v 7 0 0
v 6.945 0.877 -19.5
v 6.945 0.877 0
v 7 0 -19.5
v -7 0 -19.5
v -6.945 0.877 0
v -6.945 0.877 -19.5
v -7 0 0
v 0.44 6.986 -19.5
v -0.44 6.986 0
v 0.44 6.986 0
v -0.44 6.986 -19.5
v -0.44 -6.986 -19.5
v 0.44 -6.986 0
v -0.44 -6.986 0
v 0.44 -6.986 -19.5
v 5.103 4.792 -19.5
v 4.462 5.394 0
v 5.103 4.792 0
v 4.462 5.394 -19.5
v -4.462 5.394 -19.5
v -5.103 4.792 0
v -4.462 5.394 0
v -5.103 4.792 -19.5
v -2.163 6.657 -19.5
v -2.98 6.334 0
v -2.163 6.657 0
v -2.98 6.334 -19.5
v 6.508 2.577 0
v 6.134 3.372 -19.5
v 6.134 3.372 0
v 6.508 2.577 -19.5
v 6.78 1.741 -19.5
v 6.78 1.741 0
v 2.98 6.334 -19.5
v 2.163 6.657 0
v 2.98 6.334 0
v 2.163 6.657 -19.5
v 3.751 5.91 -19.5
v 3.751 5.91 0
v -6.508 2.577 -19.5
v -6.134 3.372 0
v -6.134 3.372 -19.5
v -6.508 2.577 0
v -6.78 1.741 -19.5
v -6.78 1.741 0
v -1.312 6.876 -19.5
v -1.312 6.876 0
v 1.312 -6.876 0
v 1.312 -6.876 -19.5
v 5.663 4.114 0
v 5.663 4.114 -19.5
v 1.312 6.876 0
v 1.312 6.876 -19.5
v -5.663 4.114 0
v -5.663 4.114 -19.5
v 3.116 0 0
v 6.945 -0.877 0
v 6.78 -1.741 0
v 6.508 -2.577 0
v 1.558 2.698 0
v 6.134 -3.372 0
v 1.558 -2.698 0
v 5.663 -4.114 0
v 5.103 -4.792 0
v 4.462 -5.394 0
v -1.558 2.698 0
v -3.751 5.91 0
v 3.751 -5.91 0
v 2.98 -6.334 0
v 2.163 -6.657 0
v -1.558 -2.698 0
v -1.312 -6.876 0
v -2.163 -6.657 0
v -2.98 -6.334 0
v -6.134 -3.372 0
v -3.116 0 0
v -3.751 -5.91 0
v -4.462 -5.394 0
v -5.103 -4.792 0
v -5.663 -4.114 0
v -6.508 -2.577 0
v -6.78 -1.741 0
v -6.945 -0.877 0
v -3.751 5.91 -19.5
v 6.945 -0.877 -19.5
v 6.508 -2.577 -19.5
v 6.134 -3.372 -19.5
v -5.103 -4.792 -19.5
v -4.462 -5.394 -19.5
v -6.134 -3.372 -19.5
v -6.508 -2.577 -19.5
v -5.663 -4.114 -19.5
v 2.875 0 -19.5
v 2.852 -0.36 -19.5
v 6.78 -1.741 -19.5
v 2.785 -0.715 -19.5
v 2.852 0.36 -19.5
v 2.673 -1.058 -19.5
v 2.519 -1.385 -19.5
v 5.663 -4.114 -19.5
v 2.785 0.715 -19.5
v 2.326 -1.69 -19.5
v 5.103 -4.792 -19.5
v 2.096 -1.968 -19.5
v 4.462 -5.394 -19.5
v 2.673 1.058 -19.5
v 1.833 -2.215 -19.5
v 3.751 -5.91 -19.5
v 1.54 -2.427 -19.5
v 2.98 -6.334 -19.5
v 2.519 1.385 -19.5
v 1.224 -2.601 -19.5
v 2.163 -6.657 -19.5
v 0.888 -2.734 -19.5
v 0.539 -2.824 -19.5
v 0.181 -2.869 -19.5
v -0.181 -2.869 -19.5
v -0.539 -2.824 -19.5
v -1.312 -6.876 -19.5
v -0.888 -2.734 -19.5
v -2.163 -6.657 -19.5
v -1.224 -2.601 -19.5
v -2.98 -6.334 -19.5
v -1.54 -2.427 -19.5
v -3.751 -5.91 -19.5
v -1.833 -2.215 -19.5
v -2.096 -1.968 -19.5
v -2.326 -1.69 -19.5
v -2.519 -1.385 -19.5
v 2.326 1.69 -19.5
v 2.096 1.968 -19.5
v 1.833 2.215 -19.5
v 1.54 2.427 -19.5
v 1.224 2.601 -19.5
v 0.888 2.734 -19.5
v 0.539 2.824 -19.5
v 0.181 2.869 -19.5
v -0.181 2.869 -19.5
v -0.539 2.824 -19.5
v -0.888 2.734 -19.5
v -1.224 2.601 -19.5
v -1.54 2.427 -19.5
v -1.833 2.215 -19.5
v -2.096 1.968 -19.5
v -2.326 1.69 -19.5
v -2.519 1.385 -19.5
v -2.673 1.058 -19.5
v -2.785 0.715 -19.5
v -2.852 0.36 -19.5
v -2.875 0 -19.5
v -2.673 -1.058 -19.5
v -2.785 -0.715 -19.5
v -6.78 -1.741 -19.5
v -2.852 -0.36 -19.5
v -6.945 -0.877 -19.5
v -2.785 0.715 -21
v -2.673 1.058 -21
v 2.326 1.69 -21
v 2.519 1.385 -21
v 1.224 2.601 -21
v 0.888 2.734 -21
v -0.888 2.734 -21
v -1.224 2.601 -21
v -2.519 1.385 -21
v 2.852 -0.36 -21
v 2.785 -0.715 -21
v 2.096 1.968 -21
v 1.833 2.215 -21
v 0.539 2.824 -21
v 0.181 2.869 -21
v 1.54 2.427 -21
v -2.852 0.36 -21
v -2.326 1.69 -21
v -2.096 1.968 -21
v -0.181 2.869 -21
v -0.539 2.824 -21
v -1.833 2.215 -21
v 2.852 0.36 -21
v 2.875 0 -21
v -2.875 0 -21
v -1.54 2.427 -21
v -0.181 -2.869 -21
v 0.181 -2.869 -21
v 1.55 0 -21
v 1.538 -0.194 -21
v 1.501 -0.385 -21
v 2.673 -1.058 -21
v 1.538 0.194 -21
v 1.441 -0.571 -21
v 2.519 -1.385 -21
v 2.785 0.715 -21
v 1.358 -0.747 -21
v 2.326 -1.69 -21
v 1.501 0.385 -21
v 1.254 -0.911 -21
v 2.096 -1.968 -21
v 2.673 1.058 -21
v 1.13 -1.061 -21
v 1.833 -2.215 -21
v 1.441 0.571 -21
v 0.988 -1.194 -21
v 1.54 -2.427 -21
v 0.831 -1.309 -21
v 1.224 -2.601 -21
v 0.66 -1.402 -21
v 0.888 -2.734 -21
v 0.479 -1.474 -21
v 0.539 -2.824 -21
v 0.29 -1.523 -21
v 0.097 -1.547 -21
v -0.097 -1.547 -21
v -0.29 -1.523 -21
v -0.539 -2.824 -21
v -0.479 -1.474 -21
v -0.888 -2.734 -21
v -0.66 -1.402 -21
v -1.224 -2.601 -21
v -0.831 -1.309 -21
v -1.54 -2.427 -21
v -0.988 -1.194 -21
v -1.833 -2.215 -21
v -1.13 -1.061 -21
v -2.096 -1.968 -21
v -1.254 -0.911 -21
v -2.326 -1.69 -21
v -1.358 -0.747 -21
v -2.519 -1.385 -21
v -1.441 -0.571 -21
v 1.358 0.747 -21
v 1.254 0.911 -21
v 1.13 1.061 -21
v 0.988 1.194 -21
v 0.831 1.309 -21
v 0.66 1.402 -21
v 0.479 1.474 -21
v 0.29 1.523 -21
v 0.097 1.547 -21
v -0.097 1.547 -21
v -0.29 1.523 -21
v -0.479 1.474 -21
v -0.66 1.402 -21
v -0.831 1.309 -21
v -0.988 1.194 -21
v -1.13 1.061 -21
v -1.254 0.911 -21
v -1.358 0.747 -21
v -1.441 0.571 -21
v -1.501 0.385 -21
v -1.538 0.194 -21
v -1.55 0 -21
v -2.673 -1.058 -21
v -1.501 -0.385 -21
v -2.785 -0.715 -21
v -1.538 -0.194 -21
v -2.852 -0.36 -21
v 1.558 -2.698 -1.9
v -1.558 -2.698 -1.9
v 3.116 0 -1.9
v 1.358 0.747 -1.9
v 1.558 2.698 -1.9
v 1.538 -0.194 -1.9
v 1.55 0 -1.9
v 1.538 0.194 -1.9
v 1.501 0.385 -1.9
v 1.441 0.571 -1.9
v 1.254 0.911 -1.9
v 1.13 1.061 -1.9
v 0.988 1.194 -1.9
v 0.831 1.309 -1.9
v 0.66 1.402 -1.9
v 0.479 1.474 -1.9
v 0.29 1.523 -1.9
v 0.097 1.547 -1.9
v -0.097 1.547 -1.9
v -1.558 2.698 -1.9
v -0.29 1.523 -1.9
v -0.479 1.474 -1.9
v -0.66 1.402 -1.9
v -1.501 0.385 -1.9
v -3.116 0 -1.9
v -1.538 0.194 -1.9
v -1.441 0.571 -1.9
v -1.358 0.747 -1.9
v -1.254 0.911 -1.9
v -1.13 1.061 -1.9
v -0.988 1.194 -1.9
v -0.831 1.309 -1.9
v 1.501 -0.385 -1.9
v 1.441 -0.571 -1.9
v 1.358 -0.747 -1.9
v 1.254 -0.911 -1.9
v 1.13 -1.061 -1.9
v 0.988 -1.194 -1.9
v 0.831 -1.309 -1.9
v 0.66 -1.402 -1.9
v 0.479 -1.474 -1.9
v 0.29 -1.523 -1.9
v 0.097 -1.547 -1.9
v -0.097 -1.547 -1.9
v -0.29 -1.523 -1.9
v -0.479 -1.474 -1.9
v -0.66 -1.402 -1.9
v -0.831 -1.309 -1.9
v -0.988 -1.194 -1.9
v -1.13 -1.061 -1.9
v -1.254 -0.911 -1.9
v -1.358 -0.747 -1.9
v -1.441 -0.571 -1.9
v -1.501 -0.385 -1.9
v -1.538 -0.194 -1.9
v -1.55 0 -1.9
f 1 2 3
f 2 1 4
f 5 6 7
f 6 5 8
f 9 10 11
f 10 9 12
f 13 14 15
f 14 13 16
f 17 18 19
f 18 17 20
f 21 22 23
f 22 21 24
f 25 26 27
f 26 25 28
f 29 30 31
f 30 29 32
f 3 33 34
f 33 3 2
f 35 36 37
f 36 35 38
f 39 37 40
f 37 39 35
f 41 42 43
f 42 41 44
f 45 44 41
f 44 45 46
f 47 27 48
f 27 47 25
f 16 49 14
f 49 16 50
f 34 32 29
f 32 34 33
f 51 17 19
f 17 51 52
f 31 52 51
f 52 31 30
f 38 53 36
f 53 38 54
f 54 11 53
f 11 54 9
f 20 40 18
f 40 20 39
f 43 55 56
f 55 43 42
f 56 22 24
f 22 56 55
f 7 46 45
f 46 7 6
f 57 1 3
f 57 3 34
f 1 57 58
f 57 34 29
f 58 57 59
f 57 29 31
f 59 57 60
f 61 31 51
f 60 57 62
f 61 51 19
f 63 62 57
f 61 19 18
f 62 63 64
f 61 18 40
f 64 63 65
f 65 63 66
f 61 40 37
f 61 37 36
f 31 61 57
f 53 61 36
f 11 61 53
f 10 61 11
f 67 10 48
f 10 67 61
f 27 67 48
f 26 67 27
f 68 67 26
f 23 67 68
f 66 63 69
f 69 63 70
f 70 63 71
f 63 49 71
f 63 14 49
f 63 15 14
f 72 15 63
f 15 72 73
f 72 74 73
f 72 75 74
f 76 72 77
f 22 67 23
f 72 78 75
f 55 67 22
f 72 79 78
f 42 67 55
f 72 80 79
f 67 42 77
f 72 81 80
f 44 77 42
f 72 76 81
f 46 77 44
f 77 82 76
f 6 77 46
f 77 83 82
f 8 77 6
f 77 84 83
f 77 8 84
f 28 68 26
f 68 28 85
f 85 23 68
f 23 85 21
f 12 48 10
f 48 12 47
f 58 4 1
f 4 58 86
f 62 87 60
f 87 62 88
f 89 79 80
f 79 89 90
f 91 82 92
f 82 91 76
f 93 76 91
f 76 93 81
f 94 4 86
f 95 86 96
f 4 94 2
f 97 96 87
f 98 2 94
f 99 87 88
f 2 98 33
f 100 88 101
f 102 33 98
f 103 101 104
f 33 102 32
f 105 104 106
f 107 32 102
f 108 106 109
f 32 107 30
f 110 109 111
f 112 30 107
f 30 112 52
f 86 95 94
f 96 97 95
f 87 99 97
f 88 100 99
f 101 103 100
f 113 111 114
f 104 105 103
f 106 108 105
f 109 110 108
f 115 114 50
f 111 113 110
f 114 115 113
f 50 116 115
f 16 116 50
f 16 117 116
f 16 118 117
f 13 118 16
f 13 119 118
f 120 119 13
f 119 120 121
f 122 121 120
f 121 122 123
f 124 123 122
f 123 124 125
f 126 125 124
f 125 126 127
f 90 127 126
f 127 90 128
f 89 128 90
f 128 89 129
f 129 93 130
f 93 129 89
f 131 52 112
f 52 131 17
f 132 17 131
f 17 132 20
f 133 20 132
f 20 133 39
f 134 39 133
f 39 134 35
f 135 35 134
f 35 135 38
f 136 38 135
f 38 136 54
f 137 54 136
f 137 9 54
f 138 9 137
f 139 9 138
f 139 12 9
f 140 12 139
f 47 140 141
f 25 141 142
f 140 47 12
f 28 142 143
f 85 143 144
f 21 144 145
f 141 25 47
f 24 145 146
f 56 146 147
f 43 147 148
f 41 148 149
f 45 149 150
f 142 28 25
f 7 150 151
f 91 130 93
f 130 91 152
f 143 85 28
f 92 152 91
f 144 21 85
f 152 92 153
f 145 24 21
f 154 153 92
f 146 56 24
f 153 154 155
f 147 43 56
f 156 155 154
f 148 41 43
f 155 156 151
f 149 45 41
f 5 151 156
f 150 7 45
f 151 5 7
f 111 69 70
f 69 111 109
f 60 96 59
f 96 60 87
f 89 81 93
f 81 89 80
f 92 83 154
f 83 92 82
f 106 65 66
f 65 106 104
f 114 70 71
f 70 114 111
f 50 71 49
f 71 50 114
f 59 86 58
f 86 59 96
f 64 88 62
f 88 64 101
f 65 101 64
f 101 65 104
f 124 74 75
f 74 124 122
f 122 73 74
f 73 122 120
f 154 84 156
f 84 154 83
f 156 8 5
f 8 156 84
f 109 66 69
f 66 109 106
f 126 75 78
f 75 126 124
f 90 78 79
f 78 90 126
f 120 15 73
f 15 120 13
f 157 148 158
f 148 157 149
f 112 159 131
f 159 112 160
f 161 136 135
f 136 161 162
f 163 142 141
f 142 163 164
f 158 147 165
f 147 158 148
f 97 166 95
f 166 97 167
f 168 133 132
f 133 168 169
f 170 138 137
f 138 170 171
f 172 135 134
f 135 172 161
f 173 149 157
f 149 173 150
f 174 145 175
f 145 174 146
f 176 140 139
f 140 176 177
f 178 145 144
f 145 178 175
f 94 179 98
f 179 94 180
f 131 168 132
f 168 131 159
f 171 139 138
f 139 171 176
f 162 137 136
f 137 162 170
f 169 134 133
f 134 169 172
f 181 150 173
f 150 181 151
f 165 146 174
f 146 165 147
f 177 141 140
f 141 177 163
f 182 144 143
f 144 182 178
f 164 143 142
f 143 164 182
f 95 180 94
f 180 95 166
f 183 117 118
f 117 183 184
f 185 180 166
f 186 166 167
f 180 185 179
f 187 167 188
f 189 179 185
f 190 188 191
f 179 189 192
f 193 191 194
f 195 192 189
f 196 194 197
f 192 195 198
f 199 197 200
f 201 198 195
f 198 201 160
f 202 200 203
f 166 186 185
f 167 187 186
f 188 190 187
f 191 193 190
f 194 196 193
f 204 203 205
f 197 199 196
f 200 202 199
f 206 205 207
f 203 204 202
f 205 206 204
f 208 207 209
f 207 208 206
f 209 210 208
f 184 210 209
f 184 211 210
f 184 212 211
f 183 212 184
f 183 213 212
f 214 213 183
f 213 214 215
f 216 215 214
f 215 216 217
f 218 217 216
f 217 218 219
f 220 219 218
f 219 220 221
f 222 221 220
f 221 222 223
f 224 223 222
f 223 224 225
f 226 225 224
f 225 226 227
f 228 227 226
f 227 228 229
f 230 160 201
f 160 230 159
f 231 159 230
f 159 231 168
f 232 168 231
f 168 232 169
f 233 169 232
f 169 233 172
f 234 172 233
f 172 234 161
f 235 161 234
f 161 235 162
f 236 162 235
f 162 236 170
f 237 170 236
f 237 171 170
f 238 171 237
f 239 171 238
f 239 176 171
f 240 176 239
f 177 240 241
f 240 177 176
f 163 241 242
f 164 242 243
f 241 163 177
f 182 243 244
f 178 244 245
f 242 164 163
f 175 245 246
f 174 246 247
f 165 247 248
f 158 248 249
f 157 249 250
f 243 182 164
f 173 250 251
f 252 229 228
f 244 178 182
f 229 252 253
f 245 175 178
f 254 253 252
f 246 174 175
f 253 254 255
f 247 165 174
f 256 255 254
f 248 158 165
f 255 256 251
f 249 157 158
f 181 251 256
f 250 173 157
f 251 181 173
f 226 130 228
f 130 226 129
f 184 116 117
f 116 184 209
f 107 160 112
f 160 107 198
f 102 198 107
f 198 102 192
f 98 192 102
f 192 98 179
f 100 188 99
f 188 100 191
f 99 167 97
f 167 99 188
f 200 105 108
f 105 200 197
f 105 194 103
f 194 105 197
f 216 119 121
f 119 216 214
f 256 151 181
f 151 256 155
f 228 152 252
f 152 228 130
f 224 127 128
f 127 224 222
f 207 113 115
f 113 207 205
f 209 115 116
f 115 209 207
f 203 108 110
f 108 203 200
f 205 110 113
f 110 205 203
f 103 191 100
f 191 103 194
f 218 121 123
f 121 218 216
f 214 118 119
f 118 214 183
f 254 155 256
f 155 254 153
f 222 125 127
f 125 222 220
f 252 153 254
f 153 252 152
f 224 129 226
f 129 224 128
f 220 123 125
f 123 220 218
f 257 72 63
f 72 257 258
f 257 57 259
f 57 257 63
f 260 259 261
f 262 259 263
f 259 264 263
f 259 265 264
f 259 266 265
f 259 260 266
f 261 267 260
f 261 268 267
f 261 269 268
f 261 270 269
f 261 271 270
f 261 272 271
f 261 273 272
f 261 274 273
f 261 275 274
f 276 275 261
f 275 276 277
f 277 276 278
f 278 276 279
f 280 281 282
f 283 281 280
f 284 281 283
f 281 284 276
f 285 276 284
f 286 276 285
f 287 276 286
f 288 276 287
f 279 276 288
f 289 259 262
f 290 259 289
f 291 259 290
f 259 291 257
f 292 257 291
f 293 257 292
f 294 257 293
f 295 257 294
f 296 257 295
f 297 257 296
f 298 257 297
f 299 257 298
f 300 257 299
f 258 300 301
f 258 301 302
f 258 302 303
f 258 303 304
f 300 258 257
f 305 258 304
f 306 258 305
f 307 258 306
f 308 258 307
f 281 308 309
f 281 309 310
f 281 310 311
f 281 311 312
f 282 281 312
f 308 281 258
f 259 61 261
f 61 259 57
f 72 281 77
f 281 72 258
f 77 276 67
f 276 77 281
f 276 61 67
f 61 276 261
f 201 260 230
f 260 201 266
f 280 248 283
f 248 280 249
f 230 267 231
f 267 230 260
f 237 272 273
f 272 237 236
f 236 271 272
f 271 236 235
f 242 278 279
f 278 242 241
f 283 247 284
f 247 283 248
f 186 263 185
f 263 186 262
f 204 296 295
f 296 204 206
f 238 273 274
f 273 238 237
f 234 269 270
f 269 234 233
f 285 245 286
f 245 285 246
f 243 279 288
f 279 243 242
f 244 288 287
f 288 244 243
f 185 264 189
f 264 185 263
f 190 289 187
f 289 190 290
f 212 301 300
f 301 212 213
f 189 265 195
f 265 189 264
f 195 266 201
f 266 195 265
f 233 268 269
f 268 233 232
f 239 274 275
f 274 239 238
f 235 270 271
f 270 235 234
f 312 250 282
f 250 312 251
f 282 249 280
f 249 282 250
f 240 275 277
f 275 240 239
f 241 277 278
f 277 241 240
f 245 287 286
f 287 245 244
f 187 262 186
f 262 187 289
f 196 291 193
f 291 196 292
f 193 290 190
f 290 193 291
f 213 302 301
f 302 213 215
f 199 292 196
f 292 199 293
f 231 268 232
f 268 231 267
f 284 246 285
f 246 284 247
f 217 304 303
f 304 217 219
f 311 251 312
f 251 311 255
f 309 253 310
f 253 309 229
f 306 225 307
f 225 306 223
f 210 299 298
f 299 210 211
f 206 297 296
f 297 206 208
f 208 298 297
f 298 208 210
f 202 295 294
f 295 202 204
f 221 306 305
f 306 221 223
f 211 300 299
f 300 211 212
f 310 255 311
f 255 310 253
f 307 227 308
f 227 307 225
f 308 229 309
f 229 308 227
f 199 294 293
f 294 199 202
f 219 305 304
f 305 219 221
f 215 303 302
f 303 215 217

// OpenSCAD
$fn = 50;

difference() {
	union() {
		translate(v = [0, 0, -19.5]) {
			cylinder(h = 19.5, r = 7.0);
		}
		#translate(v = [0, 0, -21.0]) {
			cylinder(h = 21, r = 2.875);
		}
	}
	union() {
		translate(v = [0, 0, 0]) {
			rotate(a = [0, 0, 0]) {
				difference() {
					union() {
						translate(v = [0, 0, -1.9]) {
							linear_extrude(height = 1.9) {
								polygon(points = [[3.1158, 0.0], [1.5579000000000005, 2.698361953111554], [-1.5578999999999994, 2.6983619531115544], [-3.1158, 3.815754496783323e-16], [-1.5579000000000014, -2.6983619531115535], [1.557899999999998, -2.6983619531115552]]);
							}
						}
					}
					union();
				}
			}
		}
		#translate(v = [0, 0, -100.0]) {
			cylinder(h = 200, r = 1.55);
		}
	}
}
